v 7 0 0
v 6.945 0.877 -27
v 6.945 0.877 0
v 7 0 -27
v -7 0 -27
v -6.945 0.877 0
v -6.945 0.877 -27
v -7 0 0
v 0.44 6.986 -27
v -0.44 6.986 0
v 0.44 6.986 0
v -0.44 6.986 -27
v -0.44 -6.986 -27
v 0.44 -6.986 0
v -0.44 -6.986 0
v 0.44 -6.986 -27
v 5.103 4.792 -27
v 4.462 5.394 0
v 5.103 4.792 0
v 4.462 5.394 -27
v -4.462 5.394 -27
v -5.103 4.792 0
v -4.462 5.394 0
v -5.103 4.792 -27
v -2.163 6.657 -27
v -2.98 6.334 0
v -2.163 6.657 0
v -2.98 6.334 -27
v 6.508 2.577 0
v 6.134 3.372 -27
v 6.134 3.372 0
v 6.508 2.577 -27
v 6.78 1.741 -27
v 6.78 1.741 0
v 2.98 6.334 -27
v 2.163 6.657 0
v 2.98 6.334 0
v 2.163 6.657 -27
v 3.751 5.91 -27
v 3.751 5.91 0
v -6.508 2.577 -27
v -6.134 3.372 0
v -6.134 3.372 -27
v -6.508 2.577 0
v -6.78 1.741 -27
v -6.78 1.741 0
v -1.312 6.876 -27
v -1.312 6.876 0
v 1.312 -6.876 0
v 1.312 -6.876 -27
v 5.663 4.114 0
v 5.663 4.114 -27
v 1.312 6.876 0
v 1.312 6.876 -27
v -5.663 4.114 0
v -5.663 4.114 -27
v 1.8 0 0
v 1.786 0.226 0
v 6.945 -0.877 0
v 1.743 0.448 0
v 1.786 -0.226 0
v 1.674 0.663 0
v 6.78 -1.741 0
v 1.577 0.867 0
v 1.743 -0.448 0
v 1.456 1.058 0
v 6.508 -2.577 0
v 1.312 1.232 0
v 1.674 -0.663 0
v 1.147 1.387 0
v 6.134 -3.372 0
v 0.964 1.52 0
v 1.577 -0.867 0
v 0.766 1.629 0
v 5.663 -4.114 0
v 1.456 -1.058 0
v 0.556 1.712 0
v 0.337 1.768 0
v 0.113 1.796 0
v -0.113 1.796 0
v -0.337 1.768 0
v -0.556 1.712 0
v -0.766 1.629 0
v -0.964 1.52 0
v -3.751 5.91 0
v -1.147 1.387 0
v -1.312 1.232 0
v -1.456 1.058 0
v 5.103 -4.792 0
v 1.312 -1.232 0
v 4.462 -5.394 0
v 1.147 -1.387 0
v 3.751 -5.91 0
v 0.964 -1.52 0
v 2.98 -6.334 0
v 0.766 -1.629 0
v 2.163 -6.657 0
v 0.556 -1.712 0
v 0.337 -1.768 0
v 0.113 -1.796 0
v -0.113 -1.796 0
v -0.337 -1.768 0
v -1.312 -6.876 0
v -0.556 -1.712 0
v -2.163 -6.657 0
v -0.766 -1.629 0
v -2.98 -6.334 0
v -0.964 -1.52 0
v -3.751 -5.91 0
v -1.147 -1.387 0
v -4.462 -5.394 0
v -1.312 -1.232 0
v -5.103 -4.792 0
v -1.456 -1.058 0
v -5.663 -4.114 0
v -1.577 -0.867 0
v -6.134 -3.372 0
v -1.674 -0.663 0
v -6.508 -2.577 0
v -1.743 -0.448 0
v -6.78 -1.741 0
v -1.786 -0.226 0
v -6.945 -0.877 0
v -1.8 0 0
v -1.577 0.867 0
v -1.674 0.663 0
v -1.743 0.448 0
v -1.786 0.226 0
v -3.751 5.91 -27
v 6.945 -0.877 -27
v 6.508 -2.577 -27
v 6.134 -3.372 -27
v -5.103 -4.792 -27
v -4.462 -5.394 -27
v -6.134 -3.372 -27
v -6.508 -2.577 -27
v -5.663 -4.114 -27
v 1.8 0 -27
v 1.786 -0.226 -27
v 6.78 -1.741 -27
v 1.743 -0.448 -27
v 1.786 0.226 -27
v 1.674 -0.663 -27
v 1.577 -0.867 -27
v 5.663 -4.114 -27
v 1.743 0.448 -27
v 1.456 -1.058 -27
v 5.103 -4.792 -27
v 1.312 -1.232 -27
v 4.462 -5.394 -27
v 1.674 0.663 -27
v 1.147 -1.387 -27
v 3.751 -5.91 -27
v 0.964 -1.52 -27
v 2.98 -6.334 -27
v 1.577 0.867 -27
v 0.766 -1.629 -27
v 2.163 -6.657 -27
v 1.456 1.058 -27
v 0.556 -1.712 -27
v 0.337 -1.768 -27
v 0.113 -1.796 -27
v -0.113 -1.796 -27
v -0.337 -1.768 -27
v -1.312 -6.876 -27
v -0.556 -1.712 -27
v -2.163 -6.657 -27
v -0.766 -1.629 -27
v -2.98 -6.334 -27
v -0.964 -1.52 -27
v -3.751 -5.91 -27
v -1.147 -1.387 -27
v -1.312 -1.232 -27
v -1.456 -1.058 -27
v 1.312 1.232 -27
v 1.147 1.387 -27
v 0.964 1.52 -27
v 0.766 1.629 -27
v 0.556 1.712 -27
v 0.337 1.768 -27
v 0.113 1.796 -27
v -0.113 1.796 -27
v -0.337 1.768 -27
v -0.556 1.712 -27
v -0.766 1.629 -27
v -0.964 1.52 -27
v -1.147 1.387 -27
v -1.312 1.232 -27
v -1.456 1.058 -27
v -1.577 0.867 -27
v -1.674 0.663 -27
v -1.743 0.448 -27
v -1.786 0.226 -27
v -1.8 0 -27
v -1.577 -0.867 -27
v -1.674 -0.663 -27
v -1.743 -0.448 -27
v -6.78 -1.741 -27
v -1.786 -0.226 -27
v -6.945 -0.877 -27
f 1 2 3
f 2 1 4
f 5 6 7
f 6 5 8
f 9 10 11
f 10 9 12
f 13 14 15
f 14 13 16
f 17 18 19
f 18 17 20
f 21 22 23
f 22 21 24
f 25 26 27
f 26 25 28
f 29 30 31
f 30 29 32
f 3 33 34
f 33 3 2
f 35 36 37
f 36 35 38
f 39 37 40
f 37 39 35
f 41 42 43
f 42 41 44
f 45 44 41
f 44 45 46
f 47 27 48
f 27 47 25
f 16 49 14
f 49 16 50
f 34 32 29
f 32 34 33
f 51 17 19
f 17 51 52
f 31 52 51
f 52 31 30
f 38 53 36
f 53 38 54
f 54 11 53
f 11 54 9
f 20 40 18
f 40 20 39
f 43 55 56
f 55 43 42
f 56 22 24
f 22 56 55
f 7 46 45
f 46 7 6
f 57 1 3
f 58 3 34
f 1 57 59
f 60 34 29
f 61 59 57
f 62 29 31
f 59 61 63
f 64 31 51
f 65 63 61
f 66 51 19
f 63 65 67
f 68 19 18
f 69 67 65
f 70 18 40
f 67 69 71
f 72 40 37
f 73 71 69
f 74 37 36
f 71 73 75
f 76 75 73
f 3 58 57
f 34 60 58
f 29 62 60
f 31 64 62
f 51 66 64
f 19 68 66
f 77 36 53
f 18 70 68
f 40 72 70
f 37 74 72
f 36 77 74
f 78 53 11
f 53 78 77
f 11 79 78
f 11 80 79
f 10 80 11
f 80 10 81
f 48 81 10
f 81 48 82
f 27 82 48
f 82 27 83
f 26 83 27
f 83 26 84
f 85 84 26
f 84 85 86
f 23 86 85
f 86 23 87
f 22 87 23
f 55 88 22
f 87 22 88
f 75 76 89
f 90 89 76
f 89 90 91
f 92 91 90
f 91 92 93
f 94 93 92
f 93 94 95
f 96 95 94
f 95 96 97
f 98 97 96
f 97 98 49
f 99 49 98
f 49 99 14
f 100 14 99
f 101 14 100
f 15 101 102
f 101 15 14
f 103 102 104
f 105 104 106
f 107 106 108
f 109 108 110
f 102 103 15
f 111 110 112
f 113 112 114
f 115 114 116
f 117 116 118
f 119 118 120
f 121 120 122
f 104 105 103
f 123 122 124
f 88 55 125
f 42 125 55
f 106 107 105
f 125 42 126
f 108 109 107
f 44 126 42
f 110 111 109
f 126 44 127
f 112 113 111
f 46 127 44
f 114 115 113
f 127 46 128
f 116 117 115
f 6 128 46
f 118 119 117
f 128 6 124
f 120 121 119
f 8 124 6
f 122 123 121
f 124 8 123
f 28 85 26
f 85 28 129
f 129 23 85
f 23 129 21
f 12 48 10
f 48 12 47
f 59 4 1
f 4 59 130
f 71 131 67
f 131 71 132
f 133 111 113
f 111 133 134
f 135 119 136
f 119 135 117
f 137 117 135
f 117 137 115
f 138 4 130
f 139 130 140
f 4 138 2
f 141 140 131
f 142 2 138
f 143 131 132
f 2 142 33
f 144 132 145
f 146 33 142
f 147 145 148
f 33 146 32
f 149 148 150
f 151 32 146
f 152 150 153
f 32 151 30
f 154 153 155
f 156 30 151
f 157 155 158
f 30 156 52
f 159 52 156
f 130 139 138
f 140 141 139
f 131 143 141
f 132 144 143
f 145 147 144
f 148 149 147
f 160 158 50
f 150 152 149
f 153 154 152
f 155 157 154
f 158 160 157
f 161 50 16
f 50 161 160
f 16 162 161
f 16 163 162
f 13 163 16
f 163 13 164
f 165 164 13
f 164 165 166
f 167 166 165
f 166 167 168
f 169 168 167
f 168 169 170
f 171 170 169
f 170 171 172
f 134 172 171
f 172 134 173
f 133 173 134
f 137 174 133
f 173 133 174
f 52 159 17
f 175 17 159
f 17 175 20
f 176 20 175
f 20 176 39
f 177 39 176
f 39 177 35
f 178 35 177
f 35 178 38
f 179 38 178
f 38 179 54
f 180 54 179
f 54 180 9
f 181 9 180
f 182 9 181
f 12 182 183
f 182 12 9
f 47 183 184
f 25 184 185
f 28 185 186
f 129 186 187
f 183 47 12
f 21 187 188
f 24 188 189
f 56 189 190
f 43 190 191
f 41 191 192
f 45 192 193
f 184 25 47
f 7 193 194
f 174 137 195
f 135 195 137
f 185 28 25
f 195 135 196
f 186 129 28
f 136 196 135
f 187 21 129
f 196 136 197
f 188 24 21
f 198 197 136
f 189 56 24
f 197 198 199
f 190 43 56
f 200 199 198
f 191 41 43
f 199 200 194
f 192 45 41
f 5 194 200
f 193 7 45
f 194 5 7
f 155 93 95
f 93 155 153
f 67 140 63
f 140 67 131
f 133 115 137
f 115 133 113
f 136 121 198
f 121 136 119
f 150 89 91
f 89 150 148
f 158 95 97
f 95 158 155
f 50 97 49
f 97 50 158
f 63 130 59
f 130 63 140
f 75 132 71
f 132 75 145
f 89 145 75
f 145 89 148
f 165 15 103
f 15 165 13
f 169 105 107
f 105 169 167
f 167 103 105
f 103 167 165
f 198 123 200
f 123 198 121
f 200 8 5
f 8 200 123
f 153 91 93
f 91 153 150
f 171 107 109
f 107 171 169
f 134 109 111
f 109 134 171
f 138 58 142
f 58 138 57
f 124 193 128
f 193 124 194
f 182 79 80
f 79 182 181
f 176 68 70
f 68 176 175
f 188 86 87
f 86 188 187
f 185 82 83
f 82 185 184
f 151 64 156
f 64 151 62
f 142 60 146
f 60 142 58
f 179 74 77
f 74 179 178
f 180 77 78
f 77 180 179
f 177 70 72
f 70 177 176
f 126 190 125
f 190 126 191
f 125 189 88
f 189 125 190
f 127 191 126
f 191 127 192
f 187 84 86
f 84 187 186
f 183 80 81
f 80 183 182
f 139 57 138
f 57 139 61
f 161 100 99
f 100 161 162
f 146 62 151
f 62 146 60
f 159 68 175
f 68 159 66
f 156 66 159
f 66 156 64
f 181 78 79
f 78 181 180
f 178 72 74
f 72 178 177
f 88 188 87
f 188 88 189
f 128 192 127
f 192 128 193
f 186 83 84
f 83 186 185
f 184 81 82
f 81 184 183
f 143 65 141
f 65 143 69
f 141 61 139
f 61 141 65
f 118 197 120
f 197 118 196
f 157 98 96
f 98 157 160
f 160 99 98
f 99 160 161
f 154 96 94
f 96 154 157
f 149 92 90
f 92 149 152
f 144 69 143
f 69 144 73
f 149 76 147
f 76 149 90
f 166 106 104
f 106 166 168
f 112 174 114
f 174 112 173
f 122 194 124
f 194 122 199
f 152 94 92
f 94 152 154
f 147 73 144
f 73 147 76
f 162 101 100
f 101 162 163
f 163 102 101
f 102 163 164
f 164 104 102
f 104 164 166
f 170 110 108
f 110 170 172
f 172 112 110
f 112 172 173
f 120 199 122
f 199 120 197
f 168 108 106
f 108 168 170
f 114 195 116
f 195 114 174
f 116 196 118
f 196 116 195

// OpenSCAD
$fn = 50;


difference() {
	union() {
		translate(v = [0, 0, -27.0000000000]) {
			cylinder(h = 27, r = 7.0000000000);
		}
		cylinder(h = 0, r = 16.0000000000);
	}
	union() {
		#translate(v = [0, 0, -27]) {
			cylinder(h = 27, r = 1.8000000000);
		}
	}
}
